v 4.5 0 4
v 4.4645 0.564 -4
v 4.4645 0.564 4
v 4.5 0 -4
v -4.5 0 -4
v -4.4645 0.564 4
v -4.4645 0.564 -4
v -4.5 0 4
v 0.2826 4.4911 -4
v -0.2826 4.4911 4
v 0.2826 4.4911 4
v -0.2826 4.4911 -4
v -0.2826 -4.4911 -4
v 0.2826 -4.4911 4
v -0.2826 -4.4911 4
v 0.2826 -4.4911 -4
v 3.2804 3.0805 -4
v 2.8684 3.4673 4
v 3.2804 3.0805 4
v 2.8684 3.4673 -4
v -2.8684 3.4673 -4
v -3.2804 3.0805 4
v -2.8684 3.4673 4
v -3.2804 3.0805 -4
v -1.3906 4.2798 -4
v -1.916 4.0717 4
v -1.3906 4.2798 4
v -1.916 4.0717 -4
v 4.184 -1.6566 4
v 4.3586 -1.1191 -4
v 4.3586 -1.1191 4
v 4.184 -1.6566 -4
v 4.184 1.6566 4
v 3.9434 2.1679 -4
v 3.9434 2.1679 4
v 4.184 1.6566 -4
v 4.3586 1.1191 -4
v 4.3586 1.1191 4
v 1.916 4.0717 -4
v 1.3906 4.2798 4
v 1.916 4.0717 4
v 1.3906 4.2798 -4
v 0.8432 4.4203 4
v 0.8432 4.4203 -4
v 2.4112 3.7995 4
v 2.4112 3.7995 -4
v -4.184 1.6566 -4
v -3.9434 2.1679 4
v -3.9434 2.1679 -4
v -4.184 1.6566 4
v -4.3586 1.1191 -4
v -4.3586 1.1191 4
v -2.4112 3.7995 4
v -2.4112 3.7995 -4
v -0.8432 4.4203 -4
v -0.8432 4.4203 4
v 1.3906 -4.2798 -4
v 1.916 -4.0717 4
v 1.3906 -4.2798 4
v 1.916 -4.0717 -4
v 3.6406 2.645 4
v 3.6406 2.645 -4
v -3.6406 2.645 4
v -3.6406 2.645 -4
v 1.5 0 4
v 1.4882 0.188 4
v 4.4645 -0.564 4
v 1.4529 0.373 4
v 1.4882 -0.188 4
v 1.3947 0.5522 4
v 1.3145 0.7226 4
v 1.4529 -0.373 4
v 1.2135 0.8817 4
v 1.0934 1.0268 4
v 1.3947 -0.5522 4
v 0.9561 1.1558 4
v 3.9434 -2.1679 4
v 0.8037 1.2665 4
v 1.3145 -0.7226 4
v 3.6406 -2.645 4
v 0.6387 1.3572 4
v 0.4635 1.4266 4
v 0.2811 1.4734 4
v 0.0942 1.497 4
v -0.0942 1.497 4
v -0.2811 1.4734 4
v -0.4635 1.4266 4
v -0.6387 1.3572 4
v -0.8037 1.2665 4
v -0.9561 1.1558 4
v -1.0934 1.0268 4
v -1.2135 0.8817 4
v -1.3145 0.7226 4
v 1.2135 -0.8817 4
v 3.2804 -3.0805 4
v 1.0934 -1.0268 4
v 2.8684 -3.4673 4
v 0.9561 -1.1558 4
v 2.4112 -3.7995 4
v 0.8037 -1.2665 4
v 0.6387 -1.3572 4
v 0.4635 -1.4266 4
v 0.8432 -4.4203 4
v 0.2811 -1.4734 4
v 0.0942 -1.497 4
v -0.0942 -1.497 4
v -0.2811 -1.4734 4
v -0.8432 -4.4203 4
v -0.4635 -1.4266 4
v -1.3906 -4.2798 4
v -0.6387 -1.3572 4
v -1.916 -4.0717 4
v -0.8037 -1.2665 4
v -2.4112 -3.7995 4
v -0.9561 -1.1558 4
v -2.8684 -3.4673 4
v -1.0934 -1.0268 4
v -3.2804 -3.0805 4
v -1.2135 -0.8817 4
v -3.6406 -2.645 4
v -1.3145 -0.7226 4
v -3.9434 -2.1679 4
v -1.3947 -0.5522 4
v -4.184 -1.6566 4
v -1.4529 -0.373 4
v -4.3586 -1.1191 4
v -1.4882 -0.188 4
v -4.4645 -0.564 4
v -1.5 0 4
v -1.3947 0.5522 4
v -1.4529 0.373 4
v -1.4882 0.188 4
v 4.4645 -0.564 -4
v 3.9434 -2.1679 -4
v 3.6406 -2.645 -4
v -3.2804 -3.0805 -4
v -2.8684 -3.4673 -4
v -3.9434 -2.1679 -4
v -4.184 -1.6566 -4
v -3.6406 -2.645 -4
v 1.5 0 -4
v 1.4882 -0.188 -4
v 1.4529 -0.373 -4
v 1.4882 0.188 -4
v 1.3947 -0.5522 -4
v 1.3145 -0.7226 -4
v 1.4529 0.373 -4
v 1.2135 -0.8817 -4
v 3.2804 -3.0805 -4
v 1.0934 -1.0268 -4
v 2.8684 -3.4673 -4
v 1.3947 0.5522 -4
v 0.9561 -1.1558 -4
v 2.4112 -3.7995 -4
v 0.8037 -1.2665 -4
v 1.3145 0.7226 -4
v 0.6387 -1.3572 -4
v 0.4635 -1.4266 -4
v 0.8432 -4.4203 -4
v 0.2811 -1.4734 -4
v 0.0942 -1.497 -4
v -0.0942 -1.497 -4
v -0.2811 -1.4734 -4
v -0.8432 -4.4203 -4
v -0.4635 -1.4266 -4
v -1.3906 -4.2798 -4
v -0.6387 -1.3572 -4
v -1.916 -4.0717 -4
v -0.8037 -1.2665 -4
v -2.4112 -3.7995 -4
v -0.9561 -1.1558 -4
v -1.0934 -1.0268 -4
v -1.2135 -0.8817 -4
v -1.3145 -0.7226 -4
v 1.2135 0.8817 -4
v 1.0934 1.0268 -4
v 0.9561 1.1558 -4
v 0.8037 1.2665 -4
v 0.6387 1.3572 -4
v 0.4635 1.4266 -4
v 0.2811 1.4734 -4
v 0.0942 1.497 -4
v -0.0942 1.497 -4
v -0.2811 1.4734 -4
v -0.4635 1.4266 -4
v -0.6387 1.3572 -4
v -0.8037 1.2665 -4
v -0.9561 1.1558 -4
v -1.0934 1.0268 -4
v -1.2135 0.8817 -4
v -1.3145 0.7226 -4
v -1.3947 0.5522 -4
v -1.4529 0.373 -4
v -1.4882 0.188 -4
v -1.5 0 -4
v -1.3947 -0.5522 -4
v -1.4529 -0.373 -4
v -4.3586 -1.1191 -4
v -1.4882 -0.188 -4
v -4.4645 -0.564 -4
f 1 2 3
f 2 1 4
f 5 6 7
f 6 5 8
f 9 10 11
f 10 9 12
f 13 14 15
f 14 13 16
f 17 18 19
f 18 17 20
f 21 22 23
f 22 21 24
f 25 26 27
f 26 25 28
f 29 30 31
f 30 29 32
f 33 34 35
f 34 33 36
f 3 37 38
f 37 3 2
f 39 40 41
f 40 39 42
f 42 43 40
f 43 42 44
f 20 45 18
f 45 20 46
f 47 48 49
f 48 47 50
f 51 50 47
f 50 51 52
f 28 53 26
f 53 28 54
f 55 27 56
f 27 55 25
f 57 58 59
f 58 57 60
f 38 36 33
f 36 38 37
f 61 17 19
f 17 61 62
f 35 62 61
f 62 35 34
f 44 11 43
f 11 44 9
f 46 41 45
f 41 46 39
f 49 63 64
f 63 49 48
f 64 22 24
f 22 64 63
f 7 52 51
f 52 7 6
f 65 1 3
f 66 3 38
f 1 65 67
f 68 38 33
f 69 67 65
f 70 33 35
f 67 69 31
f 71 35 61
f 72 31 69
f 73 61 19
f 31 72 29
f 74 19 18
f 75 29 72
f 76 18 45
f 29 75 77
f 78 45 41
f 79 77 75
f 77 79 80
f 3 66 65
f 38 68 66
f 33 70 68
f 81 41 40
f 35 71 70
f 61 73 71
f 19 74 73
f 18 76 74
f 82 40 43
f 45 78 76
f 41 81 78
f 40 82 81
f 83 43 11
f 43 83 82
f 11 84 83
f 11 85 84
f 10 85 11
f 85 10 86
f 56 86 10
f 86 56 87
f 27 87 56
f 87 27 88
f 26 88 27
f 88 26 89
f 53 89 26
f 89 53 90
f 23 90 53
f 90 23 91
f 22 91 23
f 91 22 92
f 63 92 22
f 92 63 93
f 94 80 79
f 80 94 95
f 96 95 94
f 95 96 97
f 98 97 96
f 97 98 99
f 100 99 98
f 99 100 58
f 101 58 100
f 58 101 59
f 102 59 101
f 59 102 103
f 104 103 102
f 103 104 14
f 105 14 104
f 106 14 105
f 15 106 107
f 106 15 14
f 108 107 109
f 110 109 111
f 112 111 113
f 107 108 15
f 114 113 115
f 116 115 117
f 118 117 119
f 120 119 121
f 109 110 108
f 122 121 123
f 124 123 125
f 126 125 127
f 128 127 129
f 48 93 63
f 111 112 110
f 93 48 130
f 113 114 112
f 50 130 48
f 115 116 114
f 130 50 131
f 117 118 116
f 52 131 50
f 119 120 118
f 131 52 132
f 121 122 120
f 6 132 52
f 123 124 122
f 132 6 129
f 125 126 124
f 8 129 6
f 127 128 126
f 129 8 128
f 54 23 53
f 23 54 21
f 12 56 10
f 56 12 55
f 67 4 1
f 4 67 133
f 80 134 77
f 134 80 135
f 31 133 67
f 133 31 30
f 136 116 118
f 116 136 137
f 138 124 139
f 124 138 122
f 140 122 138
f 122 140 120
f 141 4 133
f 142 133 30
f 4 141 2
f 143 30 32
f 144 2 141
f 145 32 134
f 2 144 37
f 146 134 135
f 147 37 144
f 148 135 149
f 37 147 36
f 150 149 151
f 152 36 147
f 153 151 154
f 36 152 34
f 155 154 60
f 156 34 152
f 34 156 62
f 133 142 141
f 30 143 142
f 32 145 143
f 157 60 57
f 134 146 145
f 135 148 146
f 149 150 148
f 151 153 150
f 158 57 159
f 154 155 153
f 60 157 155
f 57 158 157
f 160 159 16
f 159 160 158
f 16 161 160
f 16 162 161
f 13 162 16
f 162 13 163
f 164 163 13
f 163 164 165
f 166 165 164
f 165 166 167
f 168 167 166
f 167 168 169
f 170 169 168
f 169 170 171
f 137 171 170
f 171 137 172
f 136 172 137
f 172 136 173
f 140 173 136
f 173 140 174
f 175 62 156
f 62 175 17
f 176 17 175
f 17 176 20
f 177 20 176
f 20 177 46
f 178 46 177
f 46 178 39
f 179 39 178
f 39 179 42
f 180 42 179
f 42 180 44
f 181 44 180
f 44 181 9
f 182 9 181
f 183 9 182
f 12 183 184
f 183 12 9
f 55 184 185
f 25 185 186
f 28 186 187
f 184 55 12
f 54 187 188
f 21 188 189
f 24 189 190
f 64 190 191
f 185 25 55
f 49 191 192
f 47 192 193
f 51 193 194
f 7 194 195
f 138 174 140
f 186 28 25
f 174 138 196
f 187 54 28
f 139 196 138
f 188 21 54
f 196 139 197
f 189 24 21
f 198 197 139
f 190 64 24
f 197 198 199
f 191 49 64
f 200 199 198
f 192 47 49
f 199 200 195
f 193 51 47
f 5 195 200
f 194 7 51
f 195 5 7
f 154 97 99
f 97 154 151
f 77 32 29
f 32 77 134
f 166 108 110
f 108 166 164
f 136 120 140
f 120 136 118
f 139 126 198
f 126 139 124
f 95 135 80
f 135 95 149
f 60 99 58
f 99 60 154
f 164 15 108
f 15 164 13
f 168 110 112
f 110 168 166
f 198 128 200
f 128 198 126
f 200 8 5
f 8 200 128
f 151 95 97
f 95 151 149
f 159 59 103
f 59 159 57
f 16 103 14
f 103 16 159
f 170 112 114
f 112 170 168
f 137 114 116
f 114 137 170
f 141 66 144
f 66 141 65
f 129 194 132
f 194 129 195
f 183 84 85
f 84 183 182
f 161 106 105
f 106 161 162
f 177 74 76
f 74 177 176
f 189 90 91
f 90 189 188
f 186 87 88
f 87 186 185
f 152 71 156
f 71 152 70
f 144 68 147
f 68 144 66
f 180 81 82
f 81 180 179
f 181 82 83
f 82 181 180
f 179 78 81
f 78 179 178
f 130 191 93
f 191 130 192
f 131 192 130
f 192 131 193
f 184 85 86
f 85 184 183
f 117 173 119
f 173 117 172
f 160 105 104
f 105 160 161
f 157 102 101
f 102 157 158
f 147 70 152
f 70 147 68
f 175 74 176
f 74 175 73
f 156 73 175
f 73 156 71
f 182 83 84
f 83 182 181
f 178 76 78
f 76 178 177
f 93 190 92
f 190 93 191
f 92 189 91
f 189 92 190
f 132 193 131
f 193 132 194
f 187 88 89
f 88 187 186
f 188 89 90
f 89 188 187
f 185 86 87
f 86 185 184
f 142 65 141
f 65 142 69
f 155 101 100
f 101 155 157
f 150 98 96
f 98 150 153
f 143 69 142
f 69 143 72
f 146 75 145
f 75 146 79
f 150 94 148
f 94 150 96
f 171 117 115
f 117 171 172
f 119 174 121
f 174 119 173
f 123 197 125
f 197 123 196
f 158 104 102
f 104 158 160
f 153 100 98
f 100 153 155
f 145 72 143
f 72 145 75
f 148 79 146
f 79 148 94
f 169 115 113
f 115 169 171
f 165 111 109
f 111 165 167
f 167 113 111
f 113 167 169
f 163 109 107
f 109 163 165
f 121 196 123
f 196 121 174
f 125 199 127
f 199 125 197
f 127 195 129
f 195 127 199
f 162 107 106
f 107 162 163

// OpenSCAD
$fn = 50;


difference() {
	union() {
		translate(v = [0, 0, -4.0000000000]) {
			cylinder(h = 8, r = 4.5000000000);
		}
	}
	union() {
		translate(v = [0, 0, -100.0000000000]) {
			cylinder(h = 200, r = 1.5000000000);
		}
	}
}
